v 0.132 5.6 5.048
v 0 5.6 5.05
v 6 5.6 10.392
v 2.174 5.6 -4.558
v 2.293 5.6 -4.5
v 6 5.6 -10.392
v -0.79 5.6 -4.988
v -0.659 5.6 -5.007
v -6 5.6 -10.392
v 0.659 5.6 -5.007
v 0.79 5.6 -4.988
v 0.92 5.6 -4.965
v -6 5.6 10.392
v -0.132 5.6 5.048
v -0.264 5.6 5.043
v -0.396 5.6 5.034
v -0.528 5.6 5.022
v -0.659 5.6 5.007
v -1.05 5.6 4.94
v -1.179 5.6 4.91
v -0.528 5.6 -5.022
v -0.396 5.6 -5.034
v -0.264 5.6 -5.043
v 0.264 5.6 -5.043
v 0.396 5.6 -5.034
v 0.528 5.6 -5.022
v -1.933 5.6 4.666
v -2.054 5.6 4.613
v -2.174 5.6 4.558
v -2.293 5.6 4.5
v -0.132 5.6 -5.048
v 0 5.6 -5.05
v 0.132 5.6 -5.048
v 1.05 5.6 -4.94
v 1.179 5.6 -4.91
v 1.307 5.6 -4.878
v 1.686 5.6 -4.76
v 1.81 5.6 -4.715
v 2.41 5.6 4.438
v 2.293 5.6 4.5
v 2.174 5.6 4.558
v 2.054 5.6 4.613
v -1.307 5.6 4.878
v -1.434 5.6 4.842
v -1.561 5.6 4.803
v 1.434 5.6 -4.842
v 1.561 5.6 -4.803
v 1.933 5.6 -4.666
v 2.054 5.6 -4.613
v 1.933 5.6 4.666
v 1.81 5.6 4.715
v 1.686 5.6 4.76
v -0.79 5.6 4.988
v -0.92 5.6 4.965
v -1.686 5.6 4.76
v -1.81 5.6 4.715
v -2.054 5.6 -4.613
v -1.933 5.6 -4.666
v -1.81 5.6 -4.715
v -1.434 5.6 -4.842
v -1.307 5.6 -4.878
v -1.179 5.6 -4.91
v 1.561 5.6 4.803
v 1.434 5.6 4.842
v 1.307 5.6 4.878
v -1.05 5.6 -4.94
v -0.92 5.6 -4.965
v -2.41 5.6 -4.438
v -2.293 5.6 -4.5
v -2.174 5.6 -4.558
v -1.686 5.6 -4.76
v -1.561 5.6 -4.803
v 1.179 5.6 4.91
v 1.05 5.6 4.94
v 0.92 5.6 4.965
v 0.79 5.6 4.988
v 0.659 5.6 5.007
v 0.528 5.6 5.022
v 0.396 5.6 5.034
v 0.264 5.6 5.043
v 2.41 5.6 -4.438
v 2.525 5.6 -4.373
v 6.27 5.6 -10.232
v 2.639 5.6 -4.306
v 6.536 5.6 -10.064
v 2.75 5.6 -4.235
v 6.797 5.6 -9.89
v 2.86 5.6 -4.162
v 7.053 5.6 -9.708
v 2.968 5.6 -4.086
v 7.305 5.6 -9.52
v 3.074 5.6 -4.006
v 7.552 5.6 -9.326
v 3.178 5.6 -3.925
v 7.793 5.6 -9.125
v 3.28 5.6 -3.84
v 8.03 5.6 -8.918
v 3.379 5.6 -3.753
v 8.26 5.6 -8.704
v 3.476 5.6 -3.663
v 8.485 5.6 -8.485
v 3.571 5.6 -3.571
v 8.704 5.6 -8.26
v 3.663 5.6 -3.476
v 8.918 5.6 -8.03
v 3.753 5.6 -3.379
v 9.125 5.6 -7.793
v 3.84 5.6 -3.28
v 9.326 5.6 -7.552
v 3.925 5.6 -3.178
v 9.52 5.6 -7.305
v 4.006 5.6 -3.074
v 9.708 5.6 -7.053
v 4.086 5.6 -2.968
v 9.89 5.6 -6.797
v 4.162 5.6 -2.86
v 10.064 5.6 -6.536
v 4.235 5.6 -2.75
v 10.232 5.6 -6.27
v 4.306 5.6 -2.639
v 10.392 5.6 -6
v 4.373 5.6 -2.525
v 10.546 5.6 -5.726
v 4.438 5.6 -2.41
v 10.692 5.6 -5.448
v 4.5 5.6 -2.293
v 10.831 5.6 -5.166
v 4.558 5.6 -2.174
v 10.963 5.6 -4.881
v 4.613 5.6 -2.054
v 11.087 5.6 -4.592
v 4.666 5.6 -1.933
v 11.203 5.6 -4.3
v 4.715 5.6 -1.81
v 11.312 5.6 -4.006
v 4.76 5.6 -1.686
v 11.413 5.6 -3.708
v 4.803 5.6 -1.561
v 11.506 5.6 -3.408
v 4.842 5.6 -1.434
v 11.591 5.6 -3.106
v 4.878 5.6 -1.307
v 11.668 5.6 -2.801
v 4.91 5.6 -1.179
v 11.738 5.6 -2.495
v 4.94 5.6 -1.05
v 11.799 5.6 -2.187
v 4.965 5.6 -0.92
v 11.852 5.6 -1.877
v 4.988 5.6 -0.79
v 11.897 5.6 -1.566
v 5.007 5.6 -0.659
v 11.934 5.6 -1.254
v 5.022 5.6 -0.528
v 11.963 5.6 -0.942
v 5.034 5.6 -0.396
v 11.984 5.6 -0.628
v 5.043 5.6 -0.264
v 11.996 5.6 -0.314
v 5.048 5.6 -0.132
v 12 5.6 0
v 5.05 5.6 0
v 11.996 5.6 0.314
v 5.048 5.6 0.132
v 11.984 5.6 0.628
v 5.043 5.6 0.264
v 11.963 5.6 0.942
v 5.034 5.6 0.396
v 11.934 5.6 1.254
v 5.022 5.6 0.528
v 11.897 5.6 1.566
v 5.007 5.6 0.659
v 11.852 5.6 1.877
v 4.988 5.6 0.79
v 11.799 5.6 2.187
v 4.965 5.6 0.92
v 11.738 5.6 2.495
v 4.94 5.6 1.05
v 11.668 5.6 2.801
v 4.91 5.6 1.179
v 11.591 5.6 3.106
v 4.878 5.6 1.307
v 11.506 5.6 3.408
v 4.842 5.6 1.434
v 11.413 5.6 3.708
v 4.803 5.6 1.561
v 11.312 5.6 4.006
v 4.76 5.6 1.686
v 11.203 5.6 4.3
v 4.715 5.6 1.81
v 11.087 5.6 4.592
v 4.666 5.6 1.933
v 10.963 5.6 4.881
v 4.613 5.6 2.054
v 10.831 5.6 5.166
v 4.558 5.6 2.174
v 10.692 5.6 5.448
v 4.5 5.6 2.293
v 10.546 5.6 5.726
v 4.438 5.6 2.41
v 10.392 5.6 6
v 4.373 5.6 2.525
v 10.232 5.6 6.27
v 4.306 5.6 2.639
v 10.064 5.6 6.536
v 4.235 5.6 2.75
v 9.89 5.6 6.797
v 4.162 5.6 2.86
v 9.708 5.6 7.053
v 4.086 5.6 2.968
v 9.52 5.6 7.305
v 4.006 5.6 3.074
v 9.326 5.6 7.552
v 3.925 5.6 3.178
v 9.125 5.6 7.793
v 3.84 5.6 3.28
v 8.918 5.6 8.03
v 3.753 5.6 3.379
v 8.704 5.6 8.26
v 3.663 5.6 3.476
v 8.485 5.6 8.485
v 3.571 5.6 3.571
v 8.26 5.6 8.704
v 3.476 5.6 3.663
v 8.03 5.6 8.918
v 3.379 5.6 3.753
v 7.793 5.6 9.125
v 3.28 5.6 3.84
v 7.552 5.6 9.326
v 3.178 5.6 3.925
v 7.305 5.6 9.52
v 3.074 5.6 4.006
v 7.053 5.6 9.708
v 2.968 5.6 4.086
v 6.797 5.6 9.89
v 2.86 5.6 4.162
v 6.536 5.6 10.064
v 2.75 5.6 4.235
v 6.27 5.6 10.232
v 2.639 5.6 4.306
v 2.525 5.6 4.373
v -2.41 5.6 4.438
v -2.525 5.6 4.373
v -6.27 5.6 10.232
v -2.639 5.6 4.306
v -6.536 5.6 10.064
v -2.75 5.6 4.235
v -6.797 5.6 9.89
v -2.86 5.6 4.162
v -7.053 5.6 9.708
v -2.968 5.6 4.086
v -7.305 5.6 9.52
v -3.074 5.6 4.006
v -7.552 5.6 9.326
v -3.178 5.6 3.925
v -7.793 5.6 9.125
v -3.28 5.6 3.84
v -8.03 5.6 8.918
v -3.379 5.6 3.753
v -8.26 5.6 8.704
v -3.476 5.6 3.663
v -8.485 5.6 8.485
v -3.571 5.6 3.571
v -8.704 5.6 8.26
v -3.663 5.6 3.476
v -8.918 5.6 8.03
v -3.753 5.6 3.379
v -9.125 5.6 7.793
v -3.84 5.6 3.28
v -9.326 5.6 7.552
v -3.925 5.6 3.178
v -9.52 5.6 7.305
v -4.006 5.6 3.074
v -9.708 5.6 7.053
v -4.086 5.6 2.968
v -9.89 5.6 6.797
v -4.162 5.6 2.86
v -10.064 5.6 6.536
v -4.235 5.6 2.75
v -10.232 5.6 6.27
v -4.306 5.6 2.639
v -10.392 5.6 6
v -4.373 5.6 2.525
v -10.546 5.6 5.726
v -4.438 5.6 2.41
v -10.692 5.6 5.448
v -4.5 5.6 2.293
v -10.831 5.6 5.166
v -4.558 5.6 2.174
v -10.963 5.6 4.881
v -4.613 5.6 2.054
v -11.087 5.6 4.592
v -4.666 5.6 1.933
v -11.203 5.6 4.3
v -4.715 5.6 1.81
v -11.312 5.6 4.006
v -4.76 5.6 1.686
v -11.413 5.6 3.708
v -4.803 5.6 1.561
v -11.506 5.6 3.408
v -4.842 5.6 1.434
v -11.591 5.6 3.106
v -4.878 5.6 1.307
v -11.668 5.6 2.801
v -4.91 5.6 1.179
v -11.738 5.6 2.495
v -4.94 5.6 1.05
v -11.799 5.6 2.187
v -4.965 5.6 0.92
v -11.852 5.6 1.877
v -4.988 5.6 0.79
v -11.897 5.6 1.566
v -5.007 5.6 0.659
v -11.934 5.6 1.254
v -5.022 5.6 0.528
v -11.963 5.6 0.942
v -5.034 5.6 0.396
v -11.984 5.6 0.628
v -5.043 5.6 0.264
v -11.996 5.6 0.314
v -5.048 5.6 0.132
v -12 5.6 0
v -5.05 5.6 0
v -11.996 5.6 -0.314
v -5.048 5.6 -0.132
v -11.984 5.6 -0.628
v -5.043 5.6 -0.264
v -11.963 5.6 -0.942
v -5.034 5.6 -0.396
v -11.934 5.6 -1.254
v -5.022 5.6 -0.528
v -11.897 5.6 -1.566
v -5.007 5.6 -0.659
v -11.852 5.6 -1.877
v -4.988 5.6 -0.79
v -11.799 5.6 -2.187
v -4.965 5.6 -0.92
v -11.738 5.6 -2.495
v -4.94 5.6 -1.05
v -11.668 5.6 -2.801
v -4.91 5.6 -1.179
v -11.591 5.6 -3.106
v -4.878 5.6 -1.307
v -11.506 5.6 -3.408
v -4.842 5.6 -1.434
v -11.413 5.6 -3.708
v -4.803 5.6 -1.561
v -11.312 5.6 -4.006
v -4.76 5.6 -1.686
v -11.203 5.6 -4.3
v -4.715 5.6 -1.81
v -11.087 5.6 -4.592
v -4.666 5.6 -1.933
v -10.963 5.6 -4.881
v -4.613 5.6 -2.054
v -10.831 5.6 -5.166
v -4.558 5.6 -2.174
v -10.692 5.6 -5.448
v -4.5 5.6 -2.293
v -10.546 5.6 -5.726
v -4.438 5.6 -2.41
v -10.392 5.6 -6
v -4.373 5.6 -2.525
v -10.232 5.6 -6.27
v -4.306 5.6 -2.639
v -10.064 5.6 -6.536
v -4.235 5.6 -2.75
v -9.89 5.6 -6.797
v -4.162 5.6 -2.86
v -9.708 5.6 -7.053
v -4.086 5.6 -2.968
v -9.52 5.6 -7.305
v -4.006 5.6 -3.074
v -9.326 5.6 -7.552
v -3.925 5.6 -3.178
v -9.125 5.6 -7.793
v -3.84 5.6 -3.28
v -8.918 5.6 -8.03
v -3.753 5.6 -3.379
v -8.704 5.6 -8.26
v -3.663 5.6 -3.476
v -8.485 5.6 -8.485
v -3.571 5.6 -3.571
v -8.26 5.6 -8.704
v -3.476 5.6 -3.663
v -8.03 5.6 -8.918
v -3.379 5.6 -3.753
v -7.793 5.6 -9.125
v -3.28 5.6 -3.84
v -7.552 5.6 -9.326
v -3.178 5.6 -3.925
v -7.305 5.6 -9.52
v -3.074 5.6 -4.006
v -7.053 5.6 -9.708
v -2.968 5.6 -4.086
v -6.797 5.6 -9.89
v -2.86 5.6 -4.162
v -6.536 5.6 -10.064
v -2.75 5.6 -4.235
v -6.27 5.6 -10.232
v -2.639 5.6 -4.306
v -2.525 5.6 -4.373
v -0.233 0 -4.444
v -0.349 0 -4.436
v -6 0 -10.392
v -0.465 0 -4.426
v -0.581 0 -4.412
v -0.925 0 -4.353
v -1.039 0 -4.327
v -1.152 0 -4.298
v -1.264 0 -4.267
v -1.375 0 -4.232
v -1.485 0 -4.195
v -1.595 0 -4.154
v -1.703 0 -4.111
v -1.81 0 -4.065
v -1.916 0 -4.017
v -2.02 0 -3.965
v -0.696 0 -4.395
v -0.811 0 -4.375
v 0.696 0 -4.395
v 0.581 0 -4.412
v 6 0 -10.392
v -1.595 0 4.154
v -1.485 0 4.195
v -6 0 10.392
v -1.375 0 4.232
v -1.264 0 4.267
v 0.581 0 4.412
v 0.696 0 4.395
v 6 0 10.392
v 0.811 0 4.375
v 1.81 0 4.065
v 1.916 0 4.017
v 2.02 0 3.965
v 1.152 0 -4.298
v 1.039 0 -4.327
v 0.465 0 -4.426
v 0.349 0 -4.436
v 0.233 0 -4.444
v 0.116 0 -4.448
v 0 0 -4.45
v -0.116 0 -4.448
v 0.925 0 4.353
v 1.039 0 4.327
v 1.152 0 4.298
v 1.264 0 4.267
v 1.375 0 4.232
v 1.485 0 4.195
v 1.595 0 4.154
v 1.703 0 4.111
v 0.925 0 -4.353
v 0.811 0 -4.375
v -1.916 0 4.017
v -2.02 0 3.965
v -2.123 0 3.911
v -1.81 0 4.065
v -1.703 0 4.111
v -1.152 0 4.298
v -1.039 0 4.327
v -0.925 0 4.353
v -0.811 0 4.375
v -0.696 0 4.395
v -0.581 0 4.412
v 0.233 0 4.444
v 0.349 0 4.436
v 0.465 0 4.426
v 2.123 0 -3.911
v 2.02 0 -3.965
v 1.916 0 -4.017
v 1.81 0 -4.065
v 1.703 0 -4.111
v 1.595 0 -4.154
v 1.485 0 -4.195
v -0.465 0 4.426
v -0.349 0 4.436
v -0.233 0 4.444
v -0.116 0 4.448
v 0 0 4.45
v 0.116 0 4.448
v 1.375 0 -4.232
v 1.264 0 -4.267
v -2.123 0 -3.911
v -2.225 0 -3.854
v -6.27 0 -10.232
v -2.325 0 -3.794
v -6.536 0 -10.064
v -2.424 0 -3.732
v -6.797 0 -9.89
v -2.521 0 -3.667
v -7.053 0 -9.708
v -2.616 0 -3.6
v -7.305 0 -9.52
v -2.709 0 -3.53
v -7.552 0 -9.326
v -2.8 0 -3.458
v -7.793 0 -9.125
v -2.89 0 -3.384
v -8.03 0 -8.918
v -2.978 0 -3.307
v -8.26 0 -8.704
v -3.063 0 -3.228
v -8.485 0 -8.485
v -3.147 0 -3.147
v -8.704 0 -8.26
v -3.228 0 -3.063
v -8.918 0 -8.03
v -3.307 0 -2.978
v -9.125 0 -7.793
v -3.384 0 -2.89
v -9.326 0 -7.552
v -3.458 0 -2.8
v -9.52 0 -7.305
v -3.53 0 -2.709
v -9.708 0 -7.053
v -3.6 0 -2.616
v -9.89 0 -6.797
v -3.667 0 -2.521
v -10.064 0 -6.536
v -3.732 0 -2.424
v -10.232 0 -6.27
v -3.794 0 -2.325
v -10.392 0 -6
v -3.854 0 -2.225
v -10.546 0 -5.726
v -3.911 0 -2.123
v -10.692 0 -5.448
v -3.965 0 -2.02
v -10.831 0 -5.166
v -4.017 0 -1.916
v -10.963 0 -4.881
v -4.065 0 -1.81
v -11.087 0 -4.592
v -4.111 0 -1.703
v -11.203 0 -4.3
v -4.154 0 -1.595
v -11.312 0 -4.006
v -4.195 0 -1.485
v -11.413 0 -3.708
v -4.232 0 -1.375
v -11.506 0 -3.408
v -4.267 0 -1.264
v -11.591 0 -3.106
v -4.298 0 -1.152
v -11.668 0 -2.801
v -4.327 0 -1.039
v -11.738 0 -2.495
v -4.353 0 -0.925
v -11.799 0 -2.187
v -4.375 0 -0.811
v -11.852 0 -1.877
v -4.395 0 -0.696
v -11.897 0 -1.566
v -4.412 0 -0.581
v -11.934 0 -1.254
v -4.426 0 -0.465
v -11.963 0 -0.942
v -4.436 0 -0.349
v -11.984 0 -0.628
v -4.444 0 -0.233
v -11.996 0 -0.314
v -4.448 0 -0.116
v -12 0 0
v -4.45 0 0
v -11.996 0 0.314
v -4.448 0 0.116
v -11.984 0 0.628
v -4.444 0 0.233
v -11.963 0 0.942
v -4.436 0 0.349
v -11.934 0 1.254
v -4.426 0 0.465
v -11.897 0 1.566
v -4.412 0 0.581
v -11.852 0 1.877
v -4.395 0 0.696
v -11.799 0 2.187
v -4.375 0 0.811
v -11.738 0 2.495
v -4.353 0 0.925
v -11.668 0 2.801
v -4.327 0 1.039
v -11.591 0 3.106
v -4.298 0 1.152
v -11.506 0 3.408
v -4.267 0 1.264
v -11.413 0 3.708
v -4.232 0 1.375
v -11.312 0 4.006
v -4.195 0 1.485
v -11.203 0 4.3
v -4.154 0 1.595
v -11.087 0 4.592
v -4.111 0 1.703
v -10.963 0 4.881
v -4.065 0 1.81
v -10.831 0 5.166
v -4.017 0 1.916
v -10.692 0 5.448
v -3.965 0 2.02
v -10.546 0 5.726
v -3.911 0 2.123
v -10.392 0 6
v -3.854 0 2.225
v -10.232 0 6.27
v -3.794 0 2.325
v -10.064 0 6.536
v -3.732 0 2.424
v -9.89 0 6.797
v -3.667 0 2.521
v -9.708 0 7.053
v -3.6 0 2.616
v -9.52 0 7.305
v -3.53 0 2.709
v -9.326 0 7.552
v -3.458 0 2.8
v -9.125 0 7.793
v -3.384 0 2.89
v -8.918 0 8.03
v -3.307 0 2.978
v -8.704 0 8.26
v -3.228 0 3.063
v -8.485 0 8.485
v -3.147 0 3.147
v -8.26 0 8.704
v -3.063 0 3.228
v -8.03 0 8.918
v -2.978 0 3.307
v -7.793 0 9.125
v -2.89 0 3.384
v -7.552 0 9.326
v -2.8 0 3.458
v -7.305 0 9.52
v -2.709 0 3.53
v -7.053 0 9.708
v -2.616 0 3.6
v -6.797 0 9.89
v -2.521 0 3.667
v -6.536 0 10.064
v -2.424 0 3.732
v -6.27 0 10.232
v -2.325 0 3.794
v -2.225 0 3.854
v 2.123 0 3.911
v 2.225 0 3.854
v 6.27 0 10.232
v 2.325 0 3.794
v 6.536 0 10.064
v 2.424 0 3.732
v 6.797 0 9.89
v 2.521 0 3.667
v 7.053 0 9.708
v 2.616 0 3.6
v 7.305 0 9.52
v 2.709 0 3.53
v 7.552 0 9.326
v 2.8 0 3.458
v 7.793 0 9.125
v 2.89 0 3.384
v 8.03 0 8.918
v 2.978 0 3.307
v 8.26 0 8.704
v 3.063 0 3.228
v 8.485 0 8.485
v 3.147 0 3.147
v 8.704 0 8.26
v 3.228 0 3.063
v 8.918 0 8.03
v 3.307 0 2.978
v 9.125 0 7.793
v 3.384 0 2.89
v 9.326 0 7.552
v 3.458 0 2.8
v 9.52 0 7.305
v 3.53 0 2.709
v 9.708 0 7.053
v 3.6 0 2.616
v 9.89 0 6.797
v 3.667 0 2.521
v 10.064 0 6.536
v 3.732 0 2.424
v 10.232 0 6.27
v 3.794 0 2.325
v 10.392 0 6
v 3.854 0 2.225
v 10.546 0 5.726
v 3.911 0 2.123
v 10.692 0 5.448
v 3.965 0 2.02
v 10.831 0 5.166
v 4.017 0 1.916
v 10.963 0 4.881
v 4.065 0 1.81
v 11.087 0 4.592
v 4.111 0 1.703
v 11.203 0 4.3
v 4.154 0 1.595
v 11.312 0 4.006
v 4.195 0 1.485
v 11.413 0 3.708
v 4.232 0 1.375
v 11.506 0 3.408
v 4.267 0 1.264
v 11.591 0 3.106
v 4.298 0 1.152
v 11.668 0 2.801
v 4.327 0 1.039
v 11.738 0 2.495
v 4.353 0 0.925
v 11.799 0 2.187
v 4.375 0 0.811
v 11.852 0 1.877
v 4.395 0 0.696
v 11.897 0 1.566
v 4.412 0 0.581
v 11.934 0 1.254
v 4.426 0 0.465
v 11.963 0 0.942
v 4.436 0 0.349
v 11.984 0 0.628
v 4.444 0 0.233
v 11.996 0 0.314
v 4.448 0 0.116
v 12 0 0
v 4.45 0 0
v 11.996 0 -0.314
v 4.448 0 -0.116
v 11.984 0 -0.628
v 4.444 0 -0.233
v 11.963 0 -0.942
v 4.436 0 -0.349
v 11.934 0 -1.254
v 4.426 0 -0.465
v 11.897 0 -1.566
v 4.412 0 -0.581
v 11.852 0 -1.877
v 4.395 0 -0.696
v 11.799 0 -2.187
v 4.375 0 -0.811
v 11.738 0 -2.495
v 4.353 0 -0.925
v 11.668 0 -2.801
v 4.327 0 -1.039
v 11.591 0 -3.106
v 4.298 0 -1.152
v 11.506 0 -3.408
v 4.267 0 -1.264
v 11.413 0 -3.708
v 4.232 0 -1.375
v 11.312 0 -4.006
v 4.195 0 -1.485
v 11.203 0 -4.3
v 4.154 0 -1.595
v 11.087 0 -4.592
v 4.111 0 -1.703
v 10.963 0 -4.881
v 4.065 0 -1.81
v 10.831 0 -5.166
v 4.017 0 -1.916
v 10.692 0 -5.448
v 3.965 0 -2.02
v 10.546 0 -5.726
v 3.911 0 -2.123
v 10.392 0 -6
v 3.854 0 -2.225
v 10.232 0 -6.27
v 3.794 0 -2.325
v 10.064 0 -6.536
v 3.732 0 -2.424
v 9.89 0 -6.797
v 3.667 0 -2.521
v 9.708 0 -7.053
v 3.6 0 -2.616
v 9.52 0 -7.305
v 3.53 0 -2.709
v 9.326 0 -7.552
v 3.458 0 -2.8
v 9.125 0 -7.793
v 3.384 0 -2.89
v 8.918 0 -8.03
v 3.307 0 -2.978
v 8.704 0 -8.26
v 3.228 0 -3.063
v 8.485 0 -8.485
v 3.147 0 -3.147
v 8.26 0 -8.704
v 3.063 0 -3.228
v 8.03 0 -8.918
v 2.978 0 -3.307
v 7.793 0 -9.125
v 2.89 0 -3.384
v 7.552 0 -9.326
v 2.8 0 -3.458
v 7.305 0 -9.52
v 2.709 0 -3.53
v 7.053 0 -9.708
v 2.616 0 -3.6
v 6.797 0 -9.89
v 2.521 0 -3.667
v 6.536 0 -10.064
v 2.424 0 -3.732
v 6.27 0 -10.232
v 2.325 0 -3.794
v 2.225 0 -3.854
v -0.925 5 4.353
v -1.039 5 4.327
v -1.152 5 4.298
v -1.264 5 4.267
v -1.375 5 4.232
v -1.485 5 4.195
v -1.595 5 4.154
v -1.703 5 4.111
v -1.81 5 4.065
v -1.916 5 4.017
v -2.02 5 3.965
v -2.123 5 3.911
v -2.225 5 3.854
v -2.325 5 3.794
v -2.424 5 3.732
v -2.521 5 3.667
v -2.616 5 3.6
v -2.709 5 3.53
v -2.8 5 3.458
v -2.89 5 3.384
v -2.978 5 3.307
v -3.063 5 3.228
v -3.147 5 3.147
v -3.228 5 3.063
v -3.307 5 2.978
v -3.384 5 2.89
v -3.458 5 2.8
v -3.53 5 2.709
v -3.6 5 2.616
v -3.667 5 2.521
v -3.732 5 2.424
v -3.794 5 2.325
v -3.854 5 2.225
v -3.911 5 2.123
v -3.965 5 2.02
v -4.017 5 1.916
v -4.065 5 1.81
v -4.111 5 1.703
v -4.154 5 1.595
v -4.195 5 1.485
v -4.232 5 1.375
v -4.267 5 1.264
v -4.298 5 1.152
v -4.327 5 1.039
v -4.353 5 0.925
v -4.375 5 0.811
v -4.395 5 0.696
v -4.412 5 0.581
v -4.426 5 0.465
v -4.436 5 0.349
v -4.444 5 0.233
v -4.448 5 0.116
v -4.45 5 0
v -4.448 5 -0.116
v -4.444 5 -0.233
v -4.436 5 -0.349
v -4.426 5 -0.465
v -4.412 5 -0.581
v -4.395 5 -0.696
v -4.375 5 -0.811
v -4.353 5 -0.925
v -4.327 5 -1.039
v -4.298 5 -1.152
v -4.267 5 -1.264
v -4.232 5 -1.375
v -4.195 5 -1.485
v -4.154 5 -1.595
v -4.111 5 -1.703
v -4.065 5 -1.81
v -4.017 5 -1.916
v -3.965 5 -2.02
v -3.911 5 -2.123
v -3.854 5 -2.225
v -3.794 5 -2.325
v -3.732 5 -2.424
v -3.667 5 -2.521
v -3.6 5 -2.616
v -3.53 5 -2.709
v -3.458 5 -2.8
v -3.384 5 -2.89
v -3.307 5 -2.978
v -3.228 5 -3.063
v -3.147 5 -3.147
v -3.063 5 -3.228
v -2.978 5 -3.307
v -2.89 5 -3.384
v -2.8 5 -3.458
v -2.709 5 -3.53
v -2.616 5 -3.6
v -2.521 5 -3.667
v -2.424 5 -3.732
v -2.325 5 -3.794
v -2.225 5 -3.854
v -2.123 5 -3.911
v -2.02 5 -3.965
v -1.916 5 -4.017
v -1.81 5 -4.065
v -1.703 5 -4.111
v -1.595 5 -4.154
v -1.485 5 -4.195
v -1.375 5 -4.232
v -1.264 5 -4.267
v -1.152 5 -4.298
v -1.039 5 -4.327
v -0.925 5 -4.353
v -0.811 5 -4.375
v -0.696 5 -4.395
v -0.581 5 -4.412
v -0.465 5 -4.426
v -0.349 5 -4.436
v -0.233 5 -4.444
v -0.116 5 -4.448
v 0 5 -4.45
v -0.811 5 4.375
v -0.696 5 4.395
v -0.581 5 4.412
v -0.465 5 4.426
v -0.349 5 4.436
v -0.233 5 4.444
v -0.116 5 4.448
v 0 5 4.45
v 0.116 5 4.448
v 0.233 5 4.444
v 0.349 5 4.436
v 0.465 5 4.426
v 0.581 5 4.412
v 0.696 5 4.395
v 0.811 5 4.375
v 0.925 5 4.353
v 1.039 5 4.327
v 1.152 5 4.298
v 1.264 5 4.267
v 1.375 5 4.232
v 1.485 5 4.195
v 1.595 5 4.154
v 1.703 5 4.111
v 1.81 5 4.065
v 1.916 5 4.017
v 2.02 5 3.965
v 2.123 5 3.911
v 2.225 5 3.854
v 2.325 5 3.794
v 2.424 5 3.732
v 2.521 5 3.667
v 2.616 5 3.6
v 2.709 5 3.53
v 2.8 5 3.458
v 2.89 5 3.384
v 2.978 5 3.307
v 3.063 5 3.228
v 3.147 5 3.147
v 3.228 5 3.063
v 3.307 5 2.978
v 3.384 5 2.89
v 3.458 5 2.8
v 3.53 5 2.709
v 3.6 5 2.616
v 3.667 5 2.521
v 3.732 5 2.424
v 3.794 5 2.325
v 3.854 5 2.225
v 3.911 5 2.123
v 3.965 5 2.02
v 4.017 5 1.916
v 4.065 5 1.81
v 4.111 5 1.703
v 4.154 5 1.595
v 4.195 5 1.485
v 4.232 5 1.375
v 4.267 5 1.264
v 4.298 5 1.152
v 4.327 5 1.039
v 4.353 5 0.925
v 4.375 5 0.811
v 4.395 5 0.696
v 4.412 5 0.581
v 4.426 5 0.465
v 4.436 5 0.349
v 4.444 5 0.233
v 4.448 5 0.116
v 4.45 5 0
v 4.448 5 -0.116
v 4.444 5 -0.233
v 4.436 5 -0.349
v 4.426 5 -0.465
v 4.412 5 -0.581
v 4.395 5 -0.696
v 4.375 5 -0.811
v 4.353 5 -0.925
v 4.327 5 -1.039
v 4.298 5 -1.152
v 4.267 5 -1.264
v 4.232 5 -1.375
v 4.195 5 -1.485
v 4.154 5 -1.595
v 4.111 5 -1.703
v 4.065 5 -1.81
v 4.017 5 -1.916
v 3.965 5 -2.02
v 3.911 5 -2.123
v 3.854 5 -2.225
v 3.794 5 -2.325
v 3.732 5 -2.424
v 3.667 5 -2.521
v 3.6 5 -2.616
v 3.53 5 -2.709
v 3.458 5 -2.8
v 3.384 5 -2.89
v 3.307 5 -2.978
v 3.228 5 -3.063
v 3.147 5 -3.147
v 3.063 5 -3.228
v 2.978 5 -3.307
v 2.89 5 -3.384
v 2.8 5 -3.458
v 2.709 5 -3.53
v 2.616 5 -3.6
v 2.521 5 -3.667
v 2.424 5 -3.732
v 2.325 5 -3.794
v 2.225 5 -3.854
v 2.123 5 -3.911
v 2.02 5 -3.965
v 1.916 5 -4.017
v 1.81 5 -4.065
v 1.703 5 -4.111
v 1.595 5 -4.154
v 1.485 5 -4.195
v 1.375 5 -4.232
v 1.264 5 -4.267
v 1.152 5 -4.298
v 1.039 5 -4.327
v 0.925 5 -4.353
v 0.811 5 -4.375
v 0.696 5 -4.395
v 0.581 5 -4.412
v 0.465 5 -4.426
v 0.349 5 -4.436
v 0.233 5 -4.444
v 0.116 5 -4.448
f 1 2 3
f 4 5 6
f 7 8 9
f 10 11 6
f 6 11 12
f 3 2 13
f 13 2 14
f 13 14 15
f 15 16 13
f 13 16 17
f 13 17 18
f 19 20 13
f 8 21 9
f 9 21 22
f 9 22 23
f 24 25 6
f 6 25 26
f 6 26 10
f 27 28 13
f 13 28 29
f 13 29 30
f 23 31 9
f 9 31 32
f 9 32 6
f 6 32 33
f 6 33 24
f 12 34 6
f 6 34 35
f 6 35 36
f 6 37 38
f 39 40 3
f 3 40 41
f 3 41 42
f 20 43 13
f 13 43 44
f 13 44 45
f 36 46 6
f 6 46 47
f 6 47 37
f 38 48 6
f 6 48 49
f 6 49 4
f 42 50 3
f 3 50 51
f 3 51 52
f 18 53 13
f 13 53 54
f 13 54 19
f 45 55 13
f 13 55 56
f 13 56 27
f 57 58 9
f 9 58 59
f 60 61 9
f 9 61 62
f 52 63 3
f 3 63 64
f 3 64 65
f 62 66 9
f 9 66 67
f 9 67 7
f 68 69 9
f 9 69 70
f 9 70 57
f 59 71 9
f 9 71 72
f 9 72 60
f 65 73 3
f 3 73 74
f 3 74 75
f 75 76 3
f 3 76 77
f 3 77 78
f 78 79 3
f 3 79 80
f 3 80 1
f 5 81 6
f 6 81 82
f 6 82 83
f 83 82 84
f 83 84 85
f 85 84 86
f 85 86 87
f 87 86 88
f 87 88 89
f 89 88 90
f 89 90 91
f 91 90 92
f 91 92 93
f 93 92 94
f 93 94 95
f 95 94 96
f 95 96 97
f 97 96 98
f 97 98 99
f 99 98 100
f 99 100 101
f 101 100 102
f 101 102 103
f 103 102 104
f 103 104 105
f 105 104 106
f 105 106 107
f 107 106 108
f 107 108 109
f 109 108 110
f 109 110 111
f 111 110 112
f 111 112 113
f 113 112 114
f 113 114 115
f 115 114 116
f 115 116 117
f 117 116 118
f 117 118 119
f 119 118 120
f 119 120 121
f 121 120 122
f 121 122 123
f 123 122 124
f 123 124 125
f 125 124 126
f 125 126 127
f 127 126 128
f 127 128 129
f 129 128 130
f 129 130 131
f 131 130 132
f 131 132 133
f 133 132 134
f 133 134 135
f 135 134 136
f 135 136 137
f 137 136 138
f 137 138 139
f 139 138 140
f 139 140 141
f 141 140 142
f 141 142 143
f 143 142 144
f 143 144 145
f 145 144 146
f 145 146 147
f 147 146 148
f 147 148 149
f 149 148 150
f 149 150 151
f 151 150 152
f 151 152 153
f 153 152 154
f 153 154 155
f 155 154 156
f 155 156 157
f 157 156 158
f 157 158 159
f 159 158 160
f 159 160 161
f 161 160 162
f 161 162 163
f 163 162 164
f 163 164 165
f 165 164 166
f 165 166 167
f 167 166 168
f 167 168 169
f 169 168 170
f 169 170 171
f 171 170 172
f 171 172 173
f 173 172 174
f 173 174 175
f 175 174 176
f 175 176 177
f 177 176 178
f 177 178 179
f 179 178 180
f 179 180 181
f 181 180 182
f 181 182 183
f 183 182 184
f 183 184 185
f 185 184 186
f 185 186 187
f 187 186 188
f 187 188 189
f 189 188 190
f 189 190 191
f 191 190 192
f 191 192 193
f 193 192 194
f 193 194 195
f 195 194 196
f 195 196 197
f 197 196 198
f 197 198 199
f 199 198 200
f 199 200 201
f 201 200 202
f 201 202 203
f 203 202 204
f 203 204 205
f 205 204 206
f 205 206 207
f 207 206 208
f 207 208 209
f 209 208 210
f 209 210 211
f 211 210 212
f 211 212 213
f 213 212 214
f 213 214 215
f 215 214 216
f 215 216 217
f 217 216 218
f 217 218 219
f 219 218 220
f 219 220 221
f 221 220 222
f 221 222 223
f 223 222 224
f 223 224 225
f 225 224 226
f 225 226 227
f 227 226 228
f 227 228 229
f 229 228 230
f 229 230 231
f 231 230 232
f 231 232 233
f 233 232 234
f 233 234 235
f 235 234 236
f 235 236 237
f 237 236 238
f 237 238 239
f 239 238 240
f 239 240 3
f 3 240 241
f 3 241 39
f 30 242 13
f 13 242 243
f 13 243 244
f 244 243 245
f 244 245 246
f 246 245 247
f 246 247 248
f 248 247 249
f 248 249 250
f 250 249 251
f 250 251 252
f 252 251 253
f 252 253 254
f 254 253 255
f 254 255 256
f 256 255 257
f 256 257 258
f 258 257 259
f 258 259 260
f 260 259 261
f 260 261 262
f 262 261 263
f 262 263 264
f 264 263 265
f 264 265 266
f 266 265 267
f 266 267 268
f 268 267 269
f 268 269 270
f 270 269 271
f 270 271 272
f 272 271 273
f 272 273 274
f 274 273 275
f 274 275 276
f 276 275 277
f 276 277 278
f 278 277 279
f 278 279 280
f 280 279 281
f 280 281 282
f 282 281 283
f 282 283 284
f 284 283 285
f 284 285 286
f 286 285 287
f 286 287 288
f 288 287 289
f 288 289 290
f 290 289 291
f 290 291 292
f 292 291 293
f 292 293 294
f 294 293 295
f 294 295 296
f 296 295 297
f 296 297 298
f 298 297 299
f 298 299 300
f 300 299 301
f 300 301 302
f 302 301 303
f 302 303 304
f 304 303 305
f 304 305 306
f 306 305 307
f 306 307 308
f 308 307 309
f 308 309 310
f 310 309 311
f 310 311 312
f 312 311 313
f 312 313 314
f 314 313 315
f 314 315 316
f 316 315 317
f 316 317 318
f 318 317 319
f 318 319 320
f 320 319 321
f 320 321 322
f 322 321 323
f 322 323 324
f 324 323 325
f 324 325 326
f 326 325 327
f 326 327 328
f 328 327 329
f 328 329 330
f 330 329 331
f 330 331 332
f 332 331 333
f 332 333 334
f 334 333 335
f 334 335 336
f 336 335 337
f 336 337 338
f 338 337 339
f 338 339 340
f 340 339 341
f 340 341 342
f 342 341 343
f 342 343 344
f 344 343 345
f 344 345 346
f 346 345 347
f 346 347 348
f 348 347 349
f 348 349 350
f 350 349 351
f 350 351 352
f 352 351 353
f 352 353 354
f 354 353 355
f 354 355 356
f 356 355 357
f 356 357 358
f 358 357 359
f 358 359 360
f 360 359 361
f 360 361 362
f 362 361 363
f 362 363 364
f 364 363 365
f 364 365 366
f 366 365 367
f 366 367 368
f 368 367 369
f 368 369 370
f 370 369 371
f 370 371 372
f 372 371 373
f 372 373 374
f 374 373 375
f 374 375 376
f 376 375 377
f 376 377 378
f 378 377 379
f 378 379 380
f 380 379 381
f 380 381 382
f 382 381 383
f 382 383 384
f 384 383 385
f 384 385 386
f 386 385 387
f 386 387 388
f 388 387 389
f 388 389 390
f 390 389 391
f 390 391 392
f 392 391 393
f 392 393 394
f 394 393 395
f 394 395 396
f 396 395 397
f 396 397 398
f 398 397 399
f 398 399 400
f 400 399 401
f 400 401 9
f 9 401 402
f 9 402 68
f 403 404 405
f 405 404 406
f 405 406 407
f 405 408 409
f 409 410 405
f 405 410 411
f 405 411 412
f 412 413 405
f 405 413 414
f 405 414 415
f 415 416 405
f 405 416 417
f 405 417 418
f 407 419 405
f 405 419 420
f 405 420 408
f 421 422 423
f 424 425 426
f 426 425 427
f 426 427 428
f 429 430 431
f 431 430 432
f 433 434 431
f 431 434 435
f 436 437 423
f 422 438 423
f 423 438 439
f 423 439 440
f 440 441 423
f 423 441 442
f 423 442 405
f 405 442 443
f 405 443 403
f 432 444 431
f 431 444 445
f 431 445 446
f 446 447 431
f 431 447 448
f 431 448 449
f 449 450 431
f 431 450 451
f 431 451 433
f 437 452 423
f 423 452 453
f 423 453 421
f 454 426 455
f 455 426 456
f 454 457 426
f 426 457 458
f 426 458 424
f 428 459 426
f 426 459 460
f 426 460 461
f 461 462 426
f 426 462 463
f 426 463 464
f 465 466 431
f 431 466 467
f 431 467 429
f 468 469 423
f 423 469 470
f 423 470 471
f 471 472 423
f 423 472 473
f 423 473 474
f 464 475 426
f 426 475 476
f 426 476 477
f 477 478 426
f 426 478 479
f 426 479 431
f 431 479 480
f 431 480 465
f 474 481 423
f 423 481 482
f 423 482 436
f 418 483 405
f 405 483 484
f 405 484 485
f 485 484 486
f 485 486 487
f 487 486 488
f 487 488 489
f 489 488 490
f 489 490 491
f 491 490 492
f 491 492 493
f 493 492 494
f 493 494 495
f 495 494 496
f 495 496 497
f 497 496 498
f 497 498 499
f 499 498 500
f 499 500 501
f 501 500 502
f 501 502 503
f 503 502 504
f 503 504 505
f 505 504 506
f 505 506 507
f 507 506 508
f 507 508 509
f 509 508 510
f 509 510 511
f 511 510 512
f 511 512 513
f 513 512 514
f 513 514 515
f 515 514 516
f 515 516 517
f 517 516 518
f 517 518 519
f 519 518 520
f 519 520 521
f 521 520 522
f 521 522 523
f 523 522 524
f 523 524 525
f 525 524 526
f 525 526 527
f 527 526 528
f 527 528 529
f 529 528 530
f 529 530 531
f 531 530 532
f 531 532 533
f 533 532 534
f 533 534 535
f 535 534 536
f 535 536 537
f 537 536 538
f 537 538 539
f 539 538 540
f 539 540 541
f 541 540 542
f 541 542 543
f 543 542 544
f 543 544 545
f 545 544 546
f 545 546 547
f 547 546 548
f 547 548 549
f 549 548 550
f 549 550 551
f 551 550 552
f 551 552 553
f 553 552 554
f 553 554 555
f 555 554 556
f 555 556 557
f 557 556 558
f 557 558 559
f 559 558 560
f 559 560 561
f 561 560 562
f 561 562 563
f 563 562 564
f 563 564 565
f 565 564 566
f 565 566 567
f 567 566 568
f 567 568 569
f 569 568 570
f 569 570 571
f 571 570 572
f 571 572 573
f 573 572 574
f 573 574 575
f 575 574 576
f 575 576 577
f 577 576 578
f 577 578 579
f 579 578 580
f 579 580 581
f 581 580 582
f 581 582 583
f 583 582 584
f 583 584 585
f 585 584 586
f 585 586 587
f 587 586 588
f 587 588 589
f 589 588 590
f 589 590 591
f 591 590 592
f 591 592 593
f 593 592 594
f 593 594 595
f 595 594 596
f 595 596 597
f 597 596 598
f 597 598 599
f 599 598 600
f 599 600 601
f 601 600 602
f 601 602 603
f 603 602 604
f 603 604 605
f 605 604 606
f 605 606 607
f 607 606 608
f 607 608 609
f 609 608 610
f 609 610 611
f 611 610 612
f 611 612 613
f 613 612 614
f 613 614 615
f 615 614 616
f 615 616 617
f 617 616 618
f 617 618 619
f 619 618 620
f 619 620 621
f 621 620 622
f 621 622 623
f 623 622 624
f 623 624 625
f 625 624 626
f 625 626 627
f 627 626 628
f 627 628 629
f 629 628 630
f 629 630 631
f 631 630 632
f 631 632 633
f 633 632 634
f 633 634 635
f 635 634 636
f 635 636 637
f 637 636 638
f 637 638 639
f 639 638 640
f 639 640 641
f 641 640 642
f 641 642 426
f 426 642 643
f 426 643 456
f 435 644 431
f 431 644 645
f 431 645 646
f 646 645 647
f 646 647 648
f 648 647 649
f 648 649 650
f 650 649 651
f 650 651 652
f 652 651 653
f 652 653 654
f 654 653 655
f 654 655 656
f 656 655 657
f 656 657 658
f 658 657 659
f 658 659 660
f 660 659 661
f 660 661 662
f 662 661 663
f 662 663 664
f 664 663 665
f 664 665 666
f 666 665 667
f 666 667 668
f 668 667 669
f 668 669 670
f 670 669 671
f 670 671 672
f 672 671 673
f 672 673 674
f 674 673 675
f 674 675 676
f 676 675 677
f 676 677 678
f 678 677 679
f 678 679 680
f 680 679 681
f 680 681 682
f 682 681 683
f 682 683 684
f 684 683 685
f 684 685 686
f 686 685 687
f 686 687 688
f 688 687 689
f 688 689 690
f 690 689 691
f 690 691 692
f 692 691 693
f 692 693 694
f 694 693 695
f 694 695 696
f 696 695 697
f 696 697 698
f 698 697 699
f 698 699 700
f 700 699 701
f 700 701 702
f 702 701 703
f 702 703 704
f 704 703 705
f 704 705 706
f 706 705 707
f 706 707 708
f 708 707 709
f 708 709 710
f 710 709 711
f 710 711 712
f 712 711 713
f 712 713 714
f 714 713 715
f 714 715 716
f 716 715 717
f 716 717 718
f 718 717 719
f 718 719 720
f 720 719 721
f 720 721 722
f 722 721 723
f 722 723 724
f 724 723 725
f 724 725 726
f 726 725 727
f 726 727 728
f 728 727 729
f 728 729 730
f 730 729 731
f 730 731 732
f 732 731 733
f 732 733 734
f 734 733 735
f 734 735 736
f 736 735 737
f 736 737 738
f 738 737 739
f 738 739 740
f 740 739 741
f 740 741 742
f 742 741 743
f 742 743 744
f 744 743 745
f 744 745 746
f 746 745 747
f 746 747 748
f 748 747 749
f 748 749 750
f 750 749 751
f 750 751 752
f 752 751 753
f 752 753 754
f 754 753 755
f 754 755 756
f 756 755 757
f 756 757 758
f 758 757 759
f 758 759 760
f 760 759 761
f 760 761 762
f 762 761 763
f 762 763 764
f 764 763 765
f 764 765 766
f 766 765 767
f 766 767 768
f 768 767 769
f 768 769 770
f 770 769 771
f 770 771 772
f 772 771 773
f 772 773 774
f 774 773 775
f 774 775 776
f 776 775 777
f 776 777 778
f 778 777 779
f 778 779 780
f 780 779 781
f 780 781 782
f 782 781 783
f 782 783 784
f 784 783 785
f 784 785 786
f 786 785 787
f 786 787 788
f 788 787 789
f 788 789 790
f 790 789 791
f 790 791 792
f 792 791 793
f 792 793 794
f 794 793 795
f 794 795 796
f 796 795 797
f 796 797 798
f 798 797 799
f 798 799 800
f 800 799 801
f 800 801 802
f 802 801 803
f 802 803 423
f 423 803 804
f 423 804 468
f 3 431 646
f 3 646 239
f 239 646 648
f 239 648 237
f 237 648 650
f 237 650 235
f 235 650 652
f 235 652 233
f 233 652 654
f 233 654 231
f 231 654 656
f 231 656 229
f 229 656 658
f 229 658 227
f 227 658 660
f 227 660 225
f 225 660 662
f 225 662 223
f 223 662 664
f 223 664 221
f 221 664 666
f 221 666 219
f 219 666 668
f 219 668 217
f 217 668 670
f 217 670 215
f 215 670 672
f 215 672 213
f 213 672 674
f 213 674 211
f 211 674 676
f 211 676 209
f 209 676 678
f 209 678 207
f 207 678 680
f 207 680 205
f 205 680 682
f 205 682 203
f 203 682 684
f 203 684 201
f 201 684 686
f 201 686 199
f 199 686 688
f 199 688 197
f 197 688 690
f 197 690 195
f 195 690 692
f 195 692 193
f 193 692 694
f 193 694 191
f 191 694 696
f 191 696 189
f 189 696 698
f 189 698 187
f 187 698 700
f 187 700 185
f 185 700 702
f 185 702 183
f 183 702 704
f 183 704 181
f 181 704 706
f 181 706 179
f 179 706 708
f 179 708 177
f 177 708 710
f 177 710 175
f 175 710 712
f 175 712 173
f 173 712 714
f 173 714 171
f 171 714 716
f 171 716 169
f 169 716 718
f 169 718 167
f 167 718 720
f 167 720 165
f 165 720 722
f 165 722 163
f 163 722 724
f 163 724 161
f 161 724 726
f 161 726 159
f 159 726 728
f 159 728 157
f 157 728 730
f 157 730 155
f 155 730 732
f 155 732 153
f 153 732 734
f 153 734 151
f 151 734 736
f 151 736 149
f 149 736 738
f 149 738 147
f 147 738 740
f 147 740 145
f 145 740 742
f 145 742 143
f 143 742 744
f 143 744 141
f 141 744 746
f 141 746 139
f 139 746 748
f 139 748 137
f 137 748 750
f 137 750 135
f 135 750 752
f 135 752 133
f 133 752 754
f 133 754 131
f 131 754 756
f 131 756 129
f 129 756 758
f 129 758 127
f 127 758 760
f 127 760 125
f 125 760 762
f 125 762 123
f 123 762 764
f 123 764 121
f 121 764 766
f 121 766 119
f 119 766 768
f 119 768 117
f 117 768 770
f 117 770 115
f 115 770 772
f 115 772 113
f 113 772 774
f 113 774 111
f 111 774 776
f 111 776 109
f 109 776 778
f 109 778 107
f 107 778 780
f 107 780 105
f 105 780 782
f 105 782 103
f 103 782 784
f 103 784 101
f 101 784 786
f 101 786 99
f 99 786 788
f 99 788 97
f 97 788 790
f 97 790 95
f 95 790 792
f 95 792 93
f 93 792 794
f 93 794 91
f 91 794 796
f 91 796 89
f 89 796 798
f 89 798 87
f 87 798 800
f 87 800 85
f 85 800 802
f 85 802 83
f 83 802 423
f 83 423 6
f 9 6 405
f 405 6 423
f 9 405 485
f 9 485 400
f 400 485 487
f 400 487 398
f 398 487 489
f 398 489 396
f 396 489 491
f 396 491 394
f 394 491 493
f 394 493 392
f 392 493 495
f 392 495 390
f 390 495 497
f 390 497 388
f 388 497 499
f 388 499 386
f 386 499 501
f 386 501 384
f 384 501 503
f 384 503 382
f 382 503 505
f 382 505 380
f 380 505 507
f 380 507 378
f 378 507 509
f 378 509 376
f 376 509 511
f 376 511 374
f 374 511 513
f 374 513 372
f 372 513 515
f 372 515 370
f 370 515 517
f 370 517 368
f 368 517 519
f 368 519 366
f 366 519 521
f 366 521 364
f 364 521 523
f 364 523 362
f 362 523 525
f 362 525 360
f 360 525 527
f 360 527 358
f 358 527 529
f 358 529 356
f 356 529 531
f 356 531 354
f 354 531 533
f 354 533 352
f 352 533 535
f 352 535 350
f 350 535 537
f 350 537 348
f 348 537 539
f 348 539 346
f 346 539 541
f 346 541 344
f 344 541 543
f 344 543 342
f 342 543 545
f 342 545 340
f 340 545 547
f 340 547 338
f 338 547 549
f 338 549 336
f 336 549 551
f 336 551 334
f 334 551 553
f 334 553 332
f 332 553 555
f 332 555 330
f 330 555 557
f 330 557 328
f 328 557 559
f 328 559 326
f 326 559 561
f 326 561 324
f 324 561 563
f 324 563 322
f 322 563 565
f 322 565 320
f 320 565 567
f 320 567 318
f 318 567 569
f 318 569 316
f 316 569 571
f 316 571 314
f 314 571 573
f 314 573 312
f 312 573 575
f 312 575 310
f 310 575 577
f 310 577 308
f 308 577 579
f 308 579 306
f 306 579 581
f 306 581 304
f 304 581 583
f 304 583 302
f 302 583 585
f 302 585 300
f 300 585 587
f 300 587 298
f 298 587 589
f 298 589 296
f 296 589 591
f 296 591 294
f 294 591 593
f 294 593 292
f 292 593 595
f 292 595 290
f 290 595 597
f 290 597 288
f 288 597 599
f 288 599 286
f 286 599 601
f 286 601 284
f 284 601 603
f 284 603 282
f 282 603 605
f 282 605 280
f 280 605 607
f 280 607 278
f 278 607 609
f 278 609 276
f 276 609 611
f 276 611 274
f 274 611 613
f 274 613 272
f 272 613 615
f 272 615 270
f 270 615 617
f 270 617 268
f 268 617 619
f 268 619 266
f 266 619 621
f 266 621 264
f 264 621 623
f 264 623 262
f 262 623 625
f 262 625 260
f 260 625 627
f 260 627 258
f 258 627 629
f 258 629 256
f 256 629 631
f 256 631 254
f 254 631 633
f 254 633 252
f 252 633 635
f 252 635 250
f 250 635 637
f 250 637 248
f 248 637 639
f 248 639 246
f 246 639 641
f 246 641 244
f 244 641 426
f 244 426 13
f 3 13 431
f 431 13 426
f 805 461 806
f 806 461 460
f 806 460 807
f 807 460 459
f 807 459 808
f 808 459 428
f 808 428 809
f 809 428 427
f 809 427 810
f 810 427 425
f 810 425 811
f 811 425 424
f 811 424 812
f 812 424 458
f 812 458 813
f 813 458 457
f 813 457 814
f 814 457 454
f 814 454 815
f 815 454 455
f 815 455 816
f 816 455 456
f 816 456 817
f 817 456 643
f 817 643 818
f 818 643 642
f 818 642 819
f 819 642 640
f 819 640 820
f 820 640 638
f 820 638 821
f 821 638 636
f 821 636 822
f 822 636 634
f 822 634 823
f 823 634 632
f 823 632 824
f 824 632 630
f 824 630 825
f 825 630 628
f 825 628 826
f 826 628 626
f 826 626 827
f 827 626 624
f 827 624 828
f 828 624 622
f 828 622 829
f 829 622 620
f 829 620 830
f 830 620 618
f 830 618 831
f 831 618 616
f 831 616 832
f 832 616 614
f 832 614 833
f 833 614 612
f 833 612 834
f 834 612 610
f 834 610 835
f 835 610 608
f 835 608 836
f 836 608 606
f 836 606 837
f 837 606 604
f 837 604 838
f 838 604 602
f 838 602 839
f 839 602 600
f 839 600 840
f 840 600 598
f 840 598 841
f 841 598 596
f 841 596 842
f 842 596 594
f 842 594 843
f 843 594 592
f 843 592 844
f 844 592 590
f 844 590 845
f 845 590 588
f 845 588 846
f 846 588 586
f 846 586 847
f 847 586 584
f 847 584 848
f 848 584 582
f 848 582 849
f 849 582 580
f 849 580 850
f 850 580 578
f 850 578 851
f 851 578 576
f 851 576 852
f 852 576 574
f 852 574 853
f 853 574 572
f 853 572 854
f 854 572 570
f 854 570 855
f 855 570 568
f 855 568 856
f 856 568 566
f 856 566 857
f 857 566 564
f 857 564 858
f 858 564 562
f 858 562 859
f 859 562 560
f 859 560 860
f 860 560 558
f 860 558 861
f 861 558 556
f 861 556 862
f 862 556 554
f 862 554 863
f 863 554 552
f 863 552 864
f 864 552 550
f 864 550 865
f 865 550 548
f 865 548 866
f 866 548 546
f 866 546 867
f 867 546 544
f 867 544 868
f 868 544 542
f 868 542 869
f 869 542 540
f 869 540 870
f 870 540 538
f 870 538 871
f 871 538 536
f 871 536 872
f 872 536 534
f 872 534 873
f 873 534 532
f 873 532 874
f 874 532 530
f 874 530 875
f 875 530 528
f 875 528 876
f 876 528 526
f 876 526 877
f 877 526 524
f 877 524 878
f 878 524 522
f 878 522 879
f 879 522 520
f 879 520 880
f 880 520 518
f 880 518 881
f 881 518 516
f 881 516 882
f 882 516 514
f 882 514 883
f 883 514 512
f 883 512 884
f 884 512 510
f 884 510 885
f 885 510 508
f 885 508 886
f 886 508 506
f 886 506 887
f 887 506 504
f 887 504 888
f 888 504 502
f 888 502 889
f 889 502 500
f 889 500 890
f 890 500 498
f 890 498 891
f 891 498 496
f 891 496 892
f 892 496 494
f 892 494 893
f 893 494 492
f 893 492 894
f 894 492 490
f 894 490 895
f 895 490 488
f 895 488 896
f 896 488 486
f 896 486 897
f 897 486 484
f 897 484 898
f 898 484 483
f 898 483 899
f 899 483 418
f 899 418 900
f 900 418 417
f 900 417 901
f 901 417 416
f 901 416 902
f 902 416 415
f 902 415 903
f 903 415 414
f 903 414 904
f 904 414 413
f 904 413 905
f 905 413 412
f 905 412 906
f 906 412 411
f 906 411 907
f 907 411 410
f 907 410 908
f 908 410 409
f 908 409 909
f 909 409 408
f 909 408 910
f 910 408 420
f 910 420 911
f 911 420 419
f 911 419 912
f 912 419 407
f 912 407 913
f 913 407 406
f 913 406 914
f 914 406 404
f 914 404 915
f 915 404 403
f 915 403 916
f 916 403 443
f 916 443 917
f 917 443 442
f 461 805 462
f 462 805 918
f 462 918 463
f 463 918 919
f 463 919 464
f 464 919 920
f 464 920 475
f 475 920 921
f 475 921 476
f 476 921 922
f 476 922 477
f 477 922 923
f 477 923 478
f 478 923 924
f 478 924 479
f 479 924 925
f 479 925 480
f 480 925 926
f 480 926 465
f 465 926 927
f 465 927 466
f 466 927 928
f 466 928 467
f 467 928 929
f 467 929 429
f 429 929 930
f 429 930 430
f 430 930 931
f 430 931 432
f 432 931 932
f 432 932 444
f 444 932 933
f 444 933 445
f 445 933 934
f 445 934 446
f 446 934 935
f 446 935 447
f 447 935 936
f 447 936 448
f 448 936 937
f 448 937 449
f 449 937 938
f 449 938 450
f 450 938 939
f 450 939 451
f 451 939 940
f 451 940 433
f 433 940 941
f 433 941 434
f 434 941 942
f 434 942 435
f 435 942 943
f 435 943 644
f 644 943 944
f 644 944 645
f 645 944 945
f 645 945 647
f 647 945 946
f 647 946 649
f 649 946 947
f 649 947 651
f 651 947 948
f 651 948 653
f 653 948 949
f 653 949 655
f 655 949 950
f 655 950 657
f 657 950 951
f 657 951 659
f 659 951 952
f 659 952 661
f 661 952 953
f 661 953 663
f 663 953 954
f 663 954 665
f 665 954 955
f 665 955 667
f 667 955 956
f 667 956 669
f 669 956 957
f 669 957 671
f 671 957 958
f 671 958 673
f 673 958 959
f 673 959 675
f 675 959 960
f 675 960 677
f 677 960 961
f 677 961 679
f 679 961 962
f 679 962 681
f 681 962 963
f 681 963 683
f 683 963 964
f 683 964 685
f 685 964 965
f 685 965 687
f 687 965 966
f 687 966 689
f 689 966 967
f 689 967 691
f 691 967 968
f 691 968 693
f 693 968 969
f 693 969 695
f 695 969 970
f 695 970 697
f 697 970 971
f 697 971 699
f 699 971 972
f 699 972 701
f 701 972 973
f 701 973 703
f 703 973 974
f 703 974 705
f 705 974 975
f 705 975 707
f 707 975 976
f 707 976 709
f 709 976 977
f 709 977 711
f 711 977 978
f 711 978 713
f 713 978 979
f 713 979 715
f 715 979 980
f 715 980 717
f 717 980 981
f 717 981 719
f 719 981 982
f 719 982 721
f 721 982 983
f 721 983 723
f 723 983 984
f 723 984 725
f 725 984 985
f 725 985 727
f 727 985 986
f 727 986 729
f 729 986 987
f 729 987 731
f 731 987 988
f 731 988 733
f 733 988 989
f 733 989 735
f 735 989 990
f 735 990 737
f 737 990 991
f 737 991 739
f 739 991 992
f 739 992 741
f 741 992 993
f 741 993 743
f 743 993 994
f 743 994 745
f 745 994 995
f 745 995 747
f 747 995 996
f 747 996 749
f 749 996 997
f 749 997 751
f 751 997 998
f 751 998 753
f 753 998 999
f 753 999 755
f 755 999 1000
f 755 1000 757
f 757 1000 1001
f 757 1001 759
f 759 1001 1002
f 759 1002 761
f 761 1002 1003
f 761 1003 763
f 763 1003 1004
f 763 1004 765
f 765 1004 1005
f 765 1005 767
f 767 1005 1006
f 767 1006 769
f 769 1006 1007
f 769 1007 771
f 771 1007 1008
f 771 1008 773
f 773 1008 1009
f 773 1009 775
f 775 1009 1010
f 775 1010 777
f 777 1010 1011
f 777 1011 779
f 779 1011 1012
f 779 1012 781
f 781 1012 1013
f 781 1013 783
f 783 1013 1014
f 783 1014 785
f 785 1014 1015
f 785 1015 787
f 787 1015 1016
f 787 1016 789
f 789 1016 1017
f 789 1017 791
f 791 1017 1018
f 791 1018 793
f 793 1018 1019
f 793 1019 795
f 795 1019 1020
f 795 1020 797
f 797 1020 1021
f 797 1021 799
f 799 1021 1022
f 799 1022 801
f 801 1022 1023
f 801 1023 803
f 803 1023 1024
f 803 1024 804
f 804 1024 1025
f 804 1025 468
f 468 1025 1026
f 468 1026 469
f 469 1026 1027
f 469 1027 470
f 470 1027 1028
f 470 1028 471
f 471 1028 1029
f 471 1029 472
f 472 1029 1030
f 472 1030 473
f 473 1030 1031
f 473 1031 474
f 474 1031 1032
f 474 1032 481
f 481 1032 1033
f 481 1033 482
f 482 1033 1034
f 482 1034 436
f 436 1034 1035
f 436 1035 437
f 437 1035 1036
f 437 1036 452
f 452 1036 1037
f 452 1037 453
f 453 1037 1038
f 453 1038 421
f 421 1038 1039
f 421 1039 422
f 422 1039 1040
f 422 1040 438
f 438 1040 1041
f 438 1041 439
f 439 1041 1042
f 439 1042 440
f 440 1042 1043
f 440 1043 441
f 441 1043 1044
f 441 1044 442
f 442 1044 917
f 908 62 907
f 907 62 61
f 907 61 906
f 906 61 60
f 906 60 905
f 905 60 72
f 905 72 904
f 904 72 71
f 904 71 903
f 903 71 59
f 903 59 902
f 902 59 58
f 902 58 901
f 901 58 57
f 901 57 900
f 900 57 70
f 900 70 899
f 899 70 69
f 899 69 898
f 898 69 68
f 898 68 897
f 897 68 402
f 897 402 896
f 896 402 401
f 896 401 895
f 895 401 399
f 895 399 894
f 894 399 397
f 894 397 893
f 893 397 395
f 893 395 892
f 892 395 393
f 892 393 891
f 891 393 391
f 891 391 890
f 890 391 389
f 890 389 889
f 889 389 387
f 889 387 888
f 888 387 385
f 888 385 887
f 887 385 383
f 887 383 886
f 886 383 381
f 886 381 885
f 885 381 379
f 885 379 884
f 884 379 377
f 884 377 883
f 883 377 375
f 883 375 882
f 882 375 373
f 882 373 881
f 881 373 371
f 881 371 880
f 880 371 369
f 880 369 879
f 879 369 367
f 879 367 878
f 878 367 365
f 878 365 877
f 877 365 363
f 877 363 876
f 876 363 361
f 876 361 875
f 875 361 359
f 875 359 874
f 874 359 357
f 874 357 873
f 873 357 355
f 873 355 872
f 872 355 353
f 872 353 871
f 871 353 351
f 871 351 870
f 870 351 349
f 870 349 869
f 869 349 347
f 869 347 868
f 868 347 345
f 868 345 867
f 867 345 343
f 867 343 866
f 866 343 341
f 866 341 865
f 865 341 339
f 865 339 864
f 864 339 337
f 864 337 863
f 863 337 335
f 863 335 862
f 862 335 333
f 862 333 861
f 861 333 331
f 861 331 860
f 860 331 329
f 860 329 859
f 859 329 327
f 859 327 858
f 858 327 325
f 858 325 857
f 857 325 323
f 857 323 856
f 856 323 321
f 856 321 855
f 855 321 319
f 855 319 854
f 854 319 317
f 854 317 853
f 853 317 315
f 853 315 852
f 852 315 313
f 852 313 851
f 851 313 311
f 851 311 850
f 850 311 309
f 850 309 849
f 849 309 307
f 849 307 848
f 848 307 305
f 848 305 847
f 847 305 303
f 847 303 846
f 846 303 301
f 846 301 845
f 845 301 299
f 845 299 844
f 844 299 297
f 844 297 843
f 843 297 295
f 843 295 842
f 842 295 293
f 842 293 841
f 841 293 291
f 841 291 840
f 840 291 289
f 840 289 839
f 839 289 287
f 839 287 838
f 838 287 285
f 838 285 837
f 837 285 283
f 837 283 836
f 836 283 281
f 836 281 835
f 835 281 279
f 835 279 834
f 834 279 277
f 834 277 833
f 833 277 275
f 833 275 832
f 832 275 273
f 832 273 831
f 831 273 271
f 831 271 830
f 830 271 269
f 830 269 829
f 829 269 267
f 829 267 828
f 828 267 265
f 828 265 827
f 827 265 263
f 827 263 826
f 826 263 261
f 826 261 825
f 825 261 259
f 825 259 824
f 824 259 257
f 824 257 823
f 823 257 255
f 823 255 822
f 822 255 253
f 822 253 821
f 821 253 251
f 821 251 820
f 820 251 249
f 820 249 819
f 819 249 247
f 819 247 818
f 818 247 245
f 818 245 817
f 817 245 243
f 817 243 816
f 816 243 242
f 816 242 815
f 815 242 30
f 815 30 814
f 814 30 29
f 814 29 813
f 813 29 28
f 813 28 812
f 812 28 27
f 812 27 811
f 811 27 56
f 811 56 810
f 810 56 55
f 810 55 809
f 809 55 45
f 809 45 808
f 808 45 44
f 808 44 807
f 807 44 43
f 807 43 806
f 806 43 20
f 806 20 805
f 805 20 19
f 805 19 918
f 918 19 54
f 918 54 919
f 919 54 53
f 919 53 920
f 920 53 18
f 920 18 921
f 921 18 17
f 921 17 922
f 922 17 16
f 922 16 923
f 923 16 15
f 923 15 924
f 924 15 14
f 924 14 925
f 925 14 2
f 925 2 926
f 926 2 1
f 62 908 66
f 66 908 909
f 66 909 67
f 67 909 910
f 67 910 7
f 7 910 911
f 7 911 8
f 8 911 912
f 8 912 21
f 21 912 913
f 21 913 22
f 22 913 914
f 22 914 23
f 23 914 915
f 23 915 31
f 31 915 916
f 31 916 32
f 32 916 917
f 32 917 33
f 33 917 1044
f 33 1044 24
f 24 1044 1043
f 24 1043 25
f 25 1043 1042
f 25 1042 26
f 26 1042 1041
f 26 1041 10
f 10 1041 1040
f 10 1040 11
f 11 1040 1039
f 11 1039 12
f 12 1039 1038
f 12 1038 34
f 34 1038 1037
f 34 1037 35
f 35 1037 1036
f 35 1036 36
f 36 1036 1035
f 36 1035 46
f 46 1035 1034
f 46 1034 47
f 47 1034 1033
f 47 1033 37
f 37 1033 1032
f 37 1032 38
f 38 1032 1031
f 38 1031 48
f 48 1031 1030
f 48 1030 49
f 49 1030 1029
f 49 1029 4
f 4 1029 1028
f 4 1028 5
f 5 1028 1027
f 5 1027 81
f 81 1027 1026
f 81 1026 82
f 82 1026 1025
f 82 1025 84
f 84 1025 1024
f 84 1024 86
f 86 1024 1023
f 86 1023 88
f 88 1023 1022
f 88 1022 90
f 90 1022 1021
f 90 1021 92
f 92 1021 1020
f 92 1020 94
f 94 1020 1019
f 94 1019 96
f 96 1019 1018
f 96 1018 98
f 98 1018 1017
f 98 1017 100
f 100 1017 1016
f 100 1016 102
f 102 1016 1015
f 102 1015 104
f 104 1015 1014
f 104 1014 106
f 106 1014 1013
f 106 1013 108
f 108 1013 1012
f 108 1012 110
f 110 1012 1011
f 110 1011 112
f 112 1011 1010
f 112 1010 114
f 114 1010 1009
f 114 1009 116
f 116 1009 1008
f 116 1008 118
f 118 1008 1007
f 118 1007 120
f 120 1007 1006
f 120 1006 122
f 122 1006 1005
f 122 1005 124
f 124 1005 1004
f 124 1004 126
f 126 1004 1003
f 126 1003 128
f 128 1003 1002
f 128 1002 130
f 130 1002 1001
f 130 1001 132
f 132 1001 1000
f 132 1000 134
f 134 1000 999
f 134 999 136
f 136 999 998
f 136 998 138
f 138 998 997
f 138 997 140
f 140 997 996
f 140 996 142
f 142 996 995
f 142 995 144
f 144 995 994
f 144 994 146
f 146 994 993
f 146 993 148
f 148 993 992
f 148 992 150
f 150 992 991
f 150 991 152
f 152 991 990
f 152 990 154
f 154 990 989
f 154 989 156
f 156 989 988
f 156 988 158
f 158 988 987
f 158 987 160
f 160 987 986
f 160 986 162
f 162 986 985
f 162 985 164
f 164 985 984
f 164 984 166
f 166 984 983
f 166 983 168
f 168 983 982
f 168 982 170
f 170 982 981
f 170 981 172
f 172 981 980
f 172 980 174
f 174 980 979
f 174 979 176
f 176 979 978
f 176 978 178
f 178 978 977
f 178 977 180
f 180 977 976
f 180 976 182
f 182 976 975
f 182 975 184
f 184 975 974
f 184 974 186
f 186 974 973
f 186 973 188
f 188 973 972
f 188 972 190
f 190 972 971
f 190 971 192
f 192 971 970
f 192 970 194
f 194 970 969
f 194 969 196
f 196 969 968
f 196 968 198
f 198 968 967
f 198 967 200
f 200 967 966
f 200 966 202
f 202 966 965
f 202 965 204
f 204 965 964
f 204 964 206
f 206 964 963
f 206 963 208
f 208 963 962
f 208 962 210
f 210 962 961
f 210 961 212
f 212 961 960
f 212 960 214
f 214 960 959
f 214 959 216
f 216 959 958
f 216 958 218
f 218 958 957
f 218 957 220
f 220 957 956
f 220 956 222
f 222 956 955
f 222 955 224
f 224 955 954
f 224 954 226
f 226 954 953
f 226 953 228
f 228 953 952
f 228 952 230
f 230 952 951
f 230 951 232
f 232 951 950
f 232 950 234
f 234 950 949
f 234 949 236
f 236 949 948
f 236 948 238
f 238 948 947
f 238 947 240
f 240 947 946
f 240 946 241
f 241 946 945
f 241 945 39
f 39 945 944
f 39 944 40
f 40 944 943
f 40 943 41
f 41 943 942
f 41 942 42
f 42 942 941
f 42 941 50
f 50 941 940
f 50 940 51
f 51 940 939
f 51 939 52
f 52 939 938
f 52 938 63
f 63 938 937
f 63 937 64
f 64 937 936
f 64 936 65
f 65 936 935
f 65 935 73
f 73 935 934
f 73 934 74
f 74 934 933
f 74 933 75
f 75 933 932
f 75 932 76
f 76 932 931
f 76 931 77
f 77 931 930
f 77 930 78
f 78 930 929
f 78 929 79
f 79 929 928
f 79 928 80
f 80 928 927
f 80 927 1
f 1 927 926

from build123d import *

# Parameters (mm, degrees)
SKETCH1_R           = 4.45
BOSS_EXTRUDE1_DEPTH = 5.6
CHAMFER1_SIZE       = 0.6


with BuildPart() as part:
    # Sketch1 → Boss-Extrude1 (new body)
    with BuildSketch(Plane(origin=(0, 0, 0), x_dir=(1, 0, 0), z_dir=(0, 1, 0))):
        with BuildLine():
            Line((6, 10.392304845), (-6, 10.392304845))
            ThreePointArc((-6, 10.392304845), (-12, 0), (-6, -10.392304845))
            Line((-6, -10.392304845), (6, -10.392304845))
            ThreePointArc((6, -10.392304845), (12, 0), (6, 10.392304845))
        make_face()
        Circle(SKETCH1_R, mode=Mode.SUBTRACT)
    extrude(amount=BOSS_EXTRUDE1_DEPTH)

    # Chamfer1
    chamfer1_edges = [part.edges().sort_by_distance(p)[0] for p in [
        (-4.45, 5.6, 0),
    ]]
    chamfer(chamfer1_edges, length=CHAMFER1_SIZE)


solid = part.part
